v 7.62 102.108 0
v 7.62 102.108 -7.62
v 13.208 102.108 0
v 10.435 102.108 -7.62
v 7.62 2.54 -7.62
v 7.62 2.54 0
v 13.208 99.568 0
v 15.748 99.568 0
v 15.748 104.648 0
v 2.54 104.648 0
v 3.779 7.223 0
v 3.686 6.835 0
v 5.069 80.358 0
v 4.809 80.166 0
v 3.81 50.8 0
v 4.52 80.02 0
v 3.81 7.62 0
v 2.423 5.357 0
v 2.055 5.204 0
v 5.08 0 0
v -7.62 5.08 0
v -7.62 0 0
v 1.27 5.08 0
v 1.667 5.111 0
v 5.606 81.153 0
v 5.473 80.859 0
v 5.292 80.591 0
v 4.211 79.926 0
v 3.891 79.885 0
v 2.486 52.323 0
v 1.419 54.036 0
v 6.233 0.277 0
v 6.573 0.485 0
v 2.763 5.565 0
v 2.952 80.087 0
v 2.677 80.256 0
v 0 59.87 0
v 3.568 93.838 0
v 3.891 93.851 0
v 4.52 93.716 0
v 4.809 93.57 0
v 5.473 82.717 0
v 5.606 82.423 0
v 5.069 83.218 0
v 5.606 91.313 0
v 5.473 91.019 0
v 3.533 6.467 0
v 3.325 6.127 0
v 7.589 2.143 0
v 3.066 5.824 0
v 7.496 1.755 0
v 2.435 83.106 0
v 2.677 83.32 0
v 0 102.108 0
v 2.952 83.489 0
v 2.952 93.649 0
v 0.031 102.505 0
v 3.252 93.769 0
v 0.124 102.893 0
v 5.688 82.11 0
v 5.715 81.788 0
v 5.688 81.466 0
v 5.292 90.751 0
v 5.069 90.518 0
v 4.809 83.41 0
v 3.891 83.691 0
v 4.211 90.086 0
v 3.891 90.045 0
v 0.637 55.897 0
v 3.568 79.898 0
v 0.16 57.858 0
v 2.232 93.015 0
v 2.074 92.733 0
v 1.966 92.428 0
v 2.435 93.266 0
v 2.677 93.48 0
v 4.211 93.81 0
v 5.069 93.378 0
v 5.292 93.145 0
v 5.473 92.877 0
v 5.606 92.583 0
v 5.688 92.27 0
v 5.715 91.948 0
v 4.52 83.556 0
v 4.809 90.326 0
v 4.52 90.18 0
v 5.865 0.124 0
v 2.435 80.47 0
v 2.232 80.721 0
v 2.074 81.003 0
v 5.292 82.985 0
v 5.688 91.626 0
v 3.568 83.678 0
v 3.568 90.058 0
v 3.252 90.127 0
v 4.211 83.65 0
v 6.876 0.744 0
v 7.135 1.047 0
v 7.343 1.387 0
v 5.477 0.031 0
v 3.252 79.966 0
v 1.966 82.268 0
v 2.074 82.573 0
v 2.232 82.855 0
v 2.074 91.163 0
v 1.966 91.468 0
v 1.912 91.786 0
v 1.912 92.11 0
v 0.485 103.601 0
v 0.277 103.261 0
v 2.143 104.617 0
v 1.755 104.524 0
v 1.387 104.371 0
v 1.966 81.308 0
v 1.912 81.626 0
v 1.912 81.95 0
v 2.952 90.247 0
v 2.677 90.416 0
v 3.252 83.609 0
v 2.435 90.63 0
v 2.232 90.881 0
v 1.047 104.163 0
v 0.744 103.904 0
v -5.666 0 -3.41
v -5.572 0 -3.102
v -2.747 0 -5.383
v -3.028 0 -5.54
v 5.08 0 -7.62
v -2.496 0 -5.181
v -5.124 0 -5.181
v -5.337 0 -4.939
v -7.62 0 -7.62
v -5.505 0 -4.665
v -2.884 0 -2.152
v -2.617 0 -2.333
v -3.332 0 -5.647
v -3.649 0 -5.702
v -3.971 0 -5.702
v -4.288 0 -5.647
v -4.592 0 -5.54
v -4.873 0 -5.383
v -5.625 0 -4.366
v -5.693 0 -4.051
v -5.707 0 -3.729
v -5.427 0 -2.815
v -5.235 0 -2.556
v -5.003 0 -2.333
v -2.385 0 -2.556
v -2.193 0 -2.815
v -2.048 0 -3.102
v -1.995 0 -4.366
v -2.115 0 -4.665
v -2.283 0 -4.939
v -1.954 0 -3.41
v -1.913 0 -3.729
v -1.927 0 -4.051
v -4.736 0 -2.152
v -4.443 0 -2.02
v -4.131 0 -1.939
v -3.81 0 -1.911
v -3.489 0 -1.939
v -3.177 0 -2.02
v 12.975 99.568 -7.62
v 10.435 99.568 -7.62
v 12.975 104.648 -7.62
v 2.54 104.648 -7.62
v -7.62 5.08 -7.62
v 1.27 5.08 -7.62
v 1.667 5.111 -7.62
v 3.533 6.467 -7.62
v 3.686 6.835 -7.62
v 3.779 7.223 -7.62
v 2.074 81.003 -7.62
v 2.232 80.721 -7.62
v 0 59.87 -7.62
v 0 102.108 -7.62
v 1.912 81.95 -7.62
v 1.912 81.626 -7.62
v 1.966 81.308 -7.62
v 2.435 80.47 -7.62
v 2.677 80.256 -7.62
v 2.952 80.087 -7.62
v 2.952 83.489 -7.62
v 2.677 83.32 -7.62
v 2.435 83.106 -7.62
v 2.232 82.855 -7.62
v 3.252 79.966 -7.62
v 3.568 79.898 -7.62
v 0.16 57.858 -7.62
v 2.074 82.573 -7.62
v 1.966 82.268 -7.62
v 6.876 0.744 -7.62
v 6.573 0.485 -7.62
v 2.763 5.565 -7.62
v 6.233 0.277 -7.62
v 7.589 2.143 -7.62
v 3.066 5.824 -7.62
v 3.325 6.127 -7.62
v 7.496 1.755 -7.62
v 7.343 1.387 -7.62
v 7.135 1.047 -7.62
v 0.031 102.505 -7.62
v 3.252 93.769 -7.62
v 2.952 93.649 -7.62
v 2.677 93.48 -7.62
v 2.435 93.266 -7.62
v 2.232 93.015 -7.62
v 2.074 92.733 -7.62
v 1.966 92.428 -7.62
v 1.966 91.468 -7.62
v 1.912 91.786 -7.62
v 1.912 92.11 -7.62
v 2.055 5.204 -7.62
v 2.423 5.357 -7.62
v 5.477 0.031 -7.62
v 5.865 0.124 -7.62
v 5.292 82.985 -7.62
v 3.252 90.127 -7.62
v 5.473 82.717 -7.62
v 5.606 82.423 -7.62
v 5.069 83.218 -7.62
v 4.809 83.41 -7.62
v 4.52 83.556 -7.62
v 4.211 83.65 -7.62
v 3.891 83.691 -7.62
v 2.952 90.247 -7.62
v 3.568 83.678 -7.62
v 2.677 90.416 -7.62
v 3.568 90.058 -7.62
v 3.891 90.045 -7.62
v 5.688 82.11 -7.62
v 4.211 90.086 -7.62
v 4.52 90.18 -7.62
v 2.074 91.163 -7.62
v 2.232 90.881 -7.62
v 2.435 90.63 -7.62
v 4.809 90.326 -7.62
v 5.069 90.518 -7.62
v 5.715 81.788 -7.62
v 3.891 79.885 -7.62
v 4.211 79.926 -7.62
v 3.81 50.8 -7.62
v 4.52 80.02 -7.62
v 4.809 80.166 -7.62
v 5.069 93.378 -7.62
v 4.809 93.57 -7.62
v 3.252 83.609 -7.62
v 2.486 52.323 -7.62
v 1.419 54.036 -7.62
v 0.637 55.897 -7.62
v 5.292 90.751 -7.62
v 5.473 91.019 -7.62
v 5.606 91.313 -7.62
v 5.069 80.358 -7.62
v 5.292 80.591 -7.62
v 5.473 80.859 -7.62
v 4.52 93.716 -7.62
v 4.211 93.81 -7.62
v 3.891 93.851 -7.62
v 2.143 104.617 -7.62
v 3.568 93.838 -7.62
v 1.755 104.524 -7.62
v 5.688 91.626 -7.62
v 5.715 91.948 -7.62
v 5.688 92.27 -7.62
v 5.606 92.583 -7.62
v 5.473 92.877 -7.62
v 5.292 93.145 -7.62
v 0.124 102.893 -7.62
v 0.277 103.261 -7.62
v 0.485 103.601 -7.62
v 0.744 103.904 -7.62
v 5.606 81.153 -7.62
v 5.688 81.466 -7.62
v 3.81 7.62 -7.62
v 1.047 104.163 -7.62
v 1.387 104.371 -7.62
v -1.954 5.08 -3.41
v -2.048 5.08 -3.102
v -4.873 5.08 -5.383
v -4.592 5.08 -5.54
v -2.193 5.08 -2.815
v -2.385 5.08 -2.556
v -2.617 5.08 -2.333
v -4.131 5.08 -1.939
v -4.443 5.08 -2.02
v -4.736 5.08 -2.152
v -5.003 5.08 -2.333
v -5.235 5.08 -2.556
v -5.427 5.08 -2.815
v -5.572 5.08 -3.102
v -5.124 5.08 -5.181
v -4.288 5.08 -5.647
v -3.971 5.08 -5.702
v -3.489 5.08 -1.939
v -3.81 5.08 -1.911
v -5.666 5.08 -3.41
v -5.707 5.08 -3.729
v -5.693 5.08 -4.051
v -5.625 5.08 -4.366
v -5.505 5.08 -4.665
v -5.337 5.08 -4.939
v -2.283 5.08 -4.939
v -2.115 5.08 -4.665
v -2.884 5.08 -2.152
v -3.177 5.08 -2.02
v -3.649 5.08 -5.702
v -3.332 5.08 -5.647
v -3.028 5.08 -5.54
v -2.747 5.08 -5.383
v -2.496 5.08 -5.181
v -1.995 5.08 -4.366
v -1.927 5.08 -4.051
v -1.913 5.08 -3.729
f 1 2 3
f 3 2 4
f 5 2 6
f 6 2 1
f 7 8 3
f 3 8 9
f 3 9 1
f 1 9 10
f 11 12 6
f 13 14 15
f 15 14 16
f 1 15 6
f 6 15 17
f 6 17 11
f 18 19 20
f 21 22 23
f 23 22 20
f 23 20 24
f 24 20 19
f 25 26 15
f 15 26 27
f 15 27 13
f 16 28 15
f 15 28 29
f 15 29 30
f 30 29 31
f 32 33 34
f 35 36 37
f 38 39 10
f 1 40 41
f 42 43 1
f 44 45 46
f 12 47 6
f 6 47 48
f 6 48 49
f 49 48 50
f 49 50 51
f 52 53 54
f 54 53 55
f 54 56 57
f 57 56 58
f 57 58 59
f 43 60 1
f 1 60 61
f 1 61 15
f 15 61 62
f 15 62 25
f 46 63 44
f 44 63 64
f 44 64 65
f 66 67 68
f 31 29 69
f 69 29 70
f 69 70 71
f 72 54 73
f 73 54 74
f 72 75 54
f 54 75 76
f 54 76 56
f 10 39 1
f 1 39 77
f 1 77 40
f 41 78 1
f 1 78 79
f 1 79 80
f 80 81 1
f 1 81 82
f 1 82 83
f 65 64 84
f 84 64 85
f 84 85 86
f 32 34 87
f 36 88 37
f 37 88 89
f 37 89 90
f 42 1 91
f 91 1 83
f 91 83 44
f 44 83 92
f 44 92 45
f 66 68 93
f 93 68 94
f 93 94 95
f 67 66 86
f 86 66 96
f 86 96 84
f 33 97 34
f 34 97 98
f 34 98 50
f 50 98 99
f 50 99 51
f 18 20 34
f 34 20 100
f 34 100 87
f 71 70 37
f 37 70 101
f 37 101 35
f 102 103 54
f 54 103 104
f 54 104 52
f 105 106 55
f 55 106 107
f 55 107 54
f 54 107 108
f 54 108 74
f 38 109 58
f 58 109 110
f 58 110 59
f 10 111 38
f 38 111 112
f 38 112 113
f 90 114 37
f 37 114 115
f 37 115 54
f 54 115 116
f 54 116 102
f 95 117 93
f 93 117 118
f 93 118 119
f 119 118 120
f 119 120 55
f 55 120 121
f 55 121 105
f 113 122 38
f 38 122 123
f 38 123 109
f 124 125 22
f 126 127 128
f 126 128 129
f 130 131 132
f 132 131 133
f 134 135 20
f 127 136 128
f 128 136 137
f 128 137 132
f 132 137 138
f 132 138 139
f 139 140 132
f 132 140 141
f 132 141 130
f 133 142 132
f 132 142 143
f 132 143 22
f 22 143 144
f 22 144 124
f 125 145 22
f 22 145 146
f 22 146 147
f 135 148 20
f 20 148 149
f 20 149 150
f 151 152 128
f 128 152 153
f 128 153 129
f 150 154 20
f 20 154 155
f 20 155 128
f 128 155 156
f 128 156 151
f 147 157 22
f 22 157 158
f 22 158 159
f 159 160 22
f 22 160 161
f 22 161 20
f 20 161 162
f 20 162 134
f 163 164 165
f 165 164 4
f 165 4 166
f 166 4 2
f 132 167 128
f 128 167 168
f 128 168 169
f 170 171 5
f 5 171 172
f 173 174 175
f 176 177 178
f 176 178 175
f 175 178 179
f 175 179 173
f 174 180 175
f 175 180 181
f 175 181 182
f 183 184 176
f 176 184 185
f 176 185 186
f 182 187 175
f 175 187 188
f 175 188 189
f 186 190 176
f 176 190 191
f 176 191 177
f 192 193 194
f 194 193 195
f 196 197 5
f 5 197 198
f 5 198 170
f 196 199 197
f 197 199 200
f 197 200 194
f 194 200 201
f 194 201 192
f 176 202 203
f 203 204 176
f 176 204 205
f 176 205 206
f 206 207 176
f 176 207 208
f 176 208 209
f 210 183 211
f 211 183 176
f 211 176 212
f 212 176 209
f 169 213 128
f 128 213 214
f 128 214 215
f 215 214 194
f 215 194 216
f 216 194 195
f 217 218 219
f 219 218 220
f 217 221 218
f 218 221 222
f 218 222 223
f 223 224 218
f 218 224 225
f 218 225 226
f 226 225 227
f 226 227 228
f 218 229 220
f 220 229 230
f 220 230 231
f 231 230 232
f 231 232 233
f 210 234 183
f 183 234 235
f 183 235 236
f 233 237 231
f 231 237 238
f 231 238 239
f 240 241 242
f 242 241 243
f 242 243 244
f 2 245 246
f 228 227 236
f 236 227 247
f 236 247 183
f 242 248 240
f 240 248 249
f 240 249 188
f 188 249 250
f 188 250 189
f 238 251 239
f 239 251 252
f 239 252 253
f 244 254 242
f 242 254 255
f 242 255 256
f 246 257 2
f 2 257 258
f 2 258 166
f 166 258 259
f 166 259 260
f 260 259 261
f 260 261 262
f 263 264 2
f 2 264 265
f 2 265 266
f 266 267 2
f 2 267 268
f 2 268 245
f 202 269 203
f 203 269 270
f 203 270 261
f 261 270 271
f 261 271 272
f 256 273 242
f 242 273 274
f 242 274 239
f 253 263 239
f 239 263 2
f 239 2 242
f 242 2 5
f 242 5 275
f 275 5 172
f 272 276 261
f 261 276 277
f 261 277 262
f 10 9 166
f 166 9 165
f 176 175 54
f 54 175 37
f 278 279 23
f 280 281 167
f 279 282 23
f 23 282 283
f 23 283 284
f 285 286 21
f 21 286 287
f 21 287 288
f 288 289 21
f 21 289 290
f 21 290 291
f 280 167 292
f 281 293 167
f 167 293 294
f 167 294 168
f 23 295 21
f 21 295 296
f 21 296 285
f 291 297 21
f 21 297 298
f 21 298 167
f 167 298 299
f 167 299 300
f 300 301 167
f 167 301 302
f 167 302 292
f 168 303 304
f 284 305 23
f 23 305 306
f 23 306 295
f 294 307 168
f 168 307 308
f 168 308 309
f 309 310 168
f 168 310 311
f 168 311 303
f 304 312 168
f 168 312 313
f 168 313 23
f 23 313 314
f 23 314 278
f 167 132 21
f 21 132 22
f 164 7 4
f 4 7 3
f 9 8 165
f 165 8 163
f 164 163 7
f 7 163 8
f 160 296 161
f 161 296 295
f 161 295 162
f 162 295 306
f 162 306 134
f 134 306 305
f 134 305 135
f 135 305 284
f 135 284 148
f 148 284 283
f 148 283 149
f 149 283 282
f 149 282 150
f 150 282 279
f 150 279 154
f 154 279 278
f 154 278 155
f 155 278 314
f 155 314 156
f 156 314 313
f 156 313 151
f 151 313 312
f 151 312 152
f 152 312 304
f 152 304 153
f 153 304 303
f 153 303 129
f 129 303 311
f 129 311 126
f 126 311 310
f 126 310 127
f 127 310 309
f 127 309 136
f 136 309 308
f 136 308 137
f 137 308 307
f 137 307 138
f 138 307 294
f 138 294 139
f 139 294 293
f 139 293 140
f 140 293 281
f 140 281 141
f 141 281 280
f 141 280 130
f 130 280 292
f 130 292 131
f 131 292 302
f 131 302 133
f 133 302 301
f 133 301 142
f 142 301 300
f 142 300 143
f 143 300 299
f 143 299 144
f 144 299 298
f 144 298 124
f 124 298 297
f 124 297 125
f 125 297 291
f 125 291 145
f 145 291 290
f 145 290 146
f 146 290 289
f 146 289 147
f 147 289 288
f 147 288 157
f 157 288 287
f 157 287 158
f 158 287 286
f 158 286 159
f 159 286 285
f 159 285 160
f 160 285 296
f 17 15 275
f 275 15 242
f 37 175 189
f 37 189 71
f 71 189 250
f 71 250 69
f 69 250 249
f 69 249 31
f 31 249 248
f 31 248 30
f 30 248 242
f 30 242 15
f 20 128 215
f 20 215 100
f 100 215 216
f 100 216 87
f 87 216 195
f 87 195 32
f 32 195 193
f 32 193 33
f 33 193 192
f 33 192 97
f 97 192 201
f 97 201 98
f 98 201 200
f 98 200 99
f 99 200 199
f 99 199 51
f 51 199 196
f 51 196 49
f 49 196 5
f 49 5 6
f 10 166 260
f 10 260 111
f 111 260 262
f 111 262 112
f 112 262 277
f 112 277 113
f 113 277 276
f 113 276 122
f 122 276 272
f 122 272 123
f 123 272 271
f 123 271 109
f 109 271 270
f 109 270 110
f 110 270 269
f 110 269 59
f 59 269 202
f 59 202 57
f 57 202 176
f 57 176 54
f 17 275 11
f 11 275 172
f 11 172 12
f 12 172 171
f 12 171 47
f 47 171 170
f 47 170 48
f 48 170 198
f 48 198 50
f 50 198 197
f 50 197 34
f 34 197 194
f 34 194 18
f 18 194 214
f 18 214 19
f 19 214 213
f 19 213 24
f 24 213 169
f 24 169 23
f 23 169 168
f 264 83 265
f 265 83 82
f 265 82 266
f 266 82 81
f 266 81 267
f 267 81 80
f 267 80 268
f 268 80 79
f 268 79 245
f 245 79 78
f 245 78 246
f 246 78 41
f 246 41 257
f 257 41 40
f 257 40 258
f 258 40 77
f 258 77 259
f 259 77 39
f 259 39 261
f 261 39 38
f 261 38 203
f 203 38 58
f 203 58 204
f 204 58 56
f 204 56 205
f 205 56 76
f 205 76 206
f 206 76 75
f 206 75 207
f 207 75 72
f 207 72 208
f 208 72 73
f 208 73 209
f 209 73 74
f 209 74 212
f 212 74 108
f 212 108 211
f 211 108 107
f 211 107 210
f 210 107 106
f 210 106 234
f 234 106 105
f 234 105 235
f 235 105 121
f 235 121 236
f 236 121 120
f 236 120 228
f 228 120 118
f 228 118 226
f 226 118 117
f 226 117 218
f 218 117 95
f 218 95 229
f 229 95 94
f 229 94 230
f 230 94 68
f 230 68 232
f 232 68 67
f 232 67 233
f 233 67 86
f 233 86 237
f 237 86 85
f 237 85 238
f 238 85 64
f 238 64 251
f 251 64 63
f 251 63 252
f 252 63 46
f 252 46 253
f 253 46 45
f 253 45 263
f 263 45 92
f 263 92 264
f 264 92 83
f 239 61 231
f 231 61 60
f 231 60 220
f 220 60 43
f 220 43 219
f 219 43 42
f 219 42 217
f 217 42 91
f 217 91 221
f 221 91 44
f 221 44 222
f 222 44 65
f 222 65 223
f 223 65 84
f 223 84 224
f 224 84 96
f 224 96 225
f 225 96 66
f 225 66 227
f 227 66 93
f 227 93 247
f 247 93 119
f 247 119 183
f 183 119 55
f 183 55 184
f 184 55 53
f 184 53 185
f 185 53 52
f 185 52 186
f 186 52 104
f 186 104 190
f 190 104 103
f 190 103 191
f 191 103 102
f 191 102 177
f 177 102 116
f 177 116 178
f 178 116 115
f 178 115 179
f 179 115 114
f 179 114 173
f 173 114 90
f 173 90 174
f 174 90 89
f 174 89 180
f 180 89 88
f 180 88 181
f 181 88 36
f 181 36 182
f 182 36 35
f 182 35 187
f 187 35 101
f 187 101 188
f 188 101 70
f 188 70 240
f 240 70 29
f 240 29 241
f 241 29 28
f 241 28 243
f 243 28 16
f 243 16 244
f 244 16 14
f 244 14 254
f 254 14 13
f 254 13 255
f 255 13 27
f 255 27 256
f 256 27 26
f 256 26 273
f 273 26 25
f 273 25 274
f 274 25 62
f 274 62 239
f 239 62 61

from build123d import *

# Parameters (mm, degrees)
SKETCH1_W             = 7.62
SKETCH1_H             = 104.648
BOSS_EXTRUDE1_DEPTH   = 7.62
SKETCH2_W             = 7.62
SKETCH2_H             = 5.08
BOSS_EXTRUDE2_DEPTH   = 7.62
SKETCH4_W             = 7.62
SKETCH4_H             = 2.54
BOSS_EXTRUDE3_DEPTH   = 8.128
BOSS_EXTRUDE4_DEPTH   = 2.54
F_6_CLEARANCE_HOLE1_D = 3.7973
CUT_EXTRUDE1_DEPTH    = 2.54
SKETCH12_W            = 7.62
SKETCH12_H            = 45.72
CUT_EXTRUDE2_DEPTH    = 3.81
FILLET2_R             = 12.7
FILLET3_R             = 2.54
SKETCH14_R            = 1.905
CUT_EXTRUDE4_DEPTH    = 107.100272422


with BuildPart() as part:
    # Sketch1 → Boss-Extrude1 (new body)
    with BuildSketch(Plane(origin=(0, 0, 0), x_dir=(0, 0, -1), z_dir=(1, 0, 0))):
        with Locations((3.81, 52.324)):
            Rectangle(SKETCH1_W, SKETCH1_H)
    extrude(amount=BOSS_EXTRUDE1_DEPTH)

    # Sketch2 → Boss-Extrude2 (add)
    with BuildSketch(Plane.ZY):
        with Locations((-3.81, 2.54)):
            Rectangle(SKETCH2_W, SKETCH2_H)
    extrude(amount=BOSS_EXTRUDE2_DEPTH)

    # Sketch4 → Boss-Extrude3 (add)
    with BuildSketch(Plane(origin=(7.62, 0, 0), x_dir=(0, 0, -1), z_dir=(1, 0, 0))):
        with Locations((3.81, 103.378)):
            Rectangle(SKETCH4_W, SKETCH4_H)
    extrude(amount=BOSS_EXTRUDE3_DEPTH)

    # Sketch5 → Boss-Extrude4 (add)
    with BuildSketch(Plane.XZ.offset(-102.108)):
        Polygon((15.748, 0), (12.974546815, -7.62), (10.434546815, -7.62), (13.208, 0), align=None)
    extrude(amount=BOSS_EXTRUDE4_DEPTH)

    # #6 Clearance Hole1 (through all)
    with Locations(Plane(origin=(0, 5.08, 0), x_dir=(1, 0, 0), z_dir=(0, 1, 0))):
        with Locations((-3.81, 3.81)):
            Hole(F_6_CLEARANCE_HOLE1_D / 2)

    # Sketch8 → Cut-Extrude1 (cut)
    with BuildSketch(Plane.XZ.offset(-102.108)):
        Polygon((15.748, -7.62), (12.974546815, -7.62), (15.748, 0), align=None)
    extrude(amount=-CUT_EXTRUDE1_DEPTH, mode=Mode.SUBTRACT)

    # Sketch12 → Cut-Extrude2 (cut)
    with BuildSketch(Plane.ZY):
        with Locations((-3.81, 27.94)):
            Rectangle(SKETCH12_W, SKETCH12_H)
    extrude(amount=-CUT_EXTRUDE2_DEPTH, mode=Mode.SUBTRACT)

    # Fillet2
    # the kernel refuses this fillet: 12.7 mm, written as the material it takes off along each edge
    with BuildSketch(Plane(origin=(0, 50.8, 22.674035261), x_dir=(1, 0, 0), z_dir=(0, 0, -1))) as fillet2_piece_1:
        with BuildLine():
            CenterArc((12.7, -9.069614104), FILLET2_R, 134.427004001, 45.572995999)
            Line((0, -9.069614104), (-0.254, -9.069614104))
            Line((-0.254, -9.069614104), (-0.254, 0))
            Line((-0.254, 0), (0, 0.254))
            ThreePointArc((0, 0.254), (1.905, 0.254), (3.6322, 0.181392282))
            Line((3.6322, 0.181392282), (3.81, 0))
        make_face()
    extrude(amount=52.968070521, mode=Mode.SUBTRACT)

    # Fillet3
    fillet3_edges = [part.edges().sort_by_distance(p)[0] for p in [
        (3.81, 5.08, -3.81),
        (7.62, 0, -3.81),
        (0, 104.648, -3.81),
    ]]
    fillet(fillet3_edges, radius=FILLET3_R)

    # Sketch14 → Cut-Extrude4 (cut, through all)
    with BuildSketch(Plane.XY):
        with Locations((3.81, 91.948)):
            Circle(SKETCH14_R)
        with Locations((3.81, 81.788)):
            Circle(SKETCH14_R)
    extrude(amount=-CUT_EXTRUDE4_DEPTH, mode=Mode.SUBTRACT)


solid = part.part
